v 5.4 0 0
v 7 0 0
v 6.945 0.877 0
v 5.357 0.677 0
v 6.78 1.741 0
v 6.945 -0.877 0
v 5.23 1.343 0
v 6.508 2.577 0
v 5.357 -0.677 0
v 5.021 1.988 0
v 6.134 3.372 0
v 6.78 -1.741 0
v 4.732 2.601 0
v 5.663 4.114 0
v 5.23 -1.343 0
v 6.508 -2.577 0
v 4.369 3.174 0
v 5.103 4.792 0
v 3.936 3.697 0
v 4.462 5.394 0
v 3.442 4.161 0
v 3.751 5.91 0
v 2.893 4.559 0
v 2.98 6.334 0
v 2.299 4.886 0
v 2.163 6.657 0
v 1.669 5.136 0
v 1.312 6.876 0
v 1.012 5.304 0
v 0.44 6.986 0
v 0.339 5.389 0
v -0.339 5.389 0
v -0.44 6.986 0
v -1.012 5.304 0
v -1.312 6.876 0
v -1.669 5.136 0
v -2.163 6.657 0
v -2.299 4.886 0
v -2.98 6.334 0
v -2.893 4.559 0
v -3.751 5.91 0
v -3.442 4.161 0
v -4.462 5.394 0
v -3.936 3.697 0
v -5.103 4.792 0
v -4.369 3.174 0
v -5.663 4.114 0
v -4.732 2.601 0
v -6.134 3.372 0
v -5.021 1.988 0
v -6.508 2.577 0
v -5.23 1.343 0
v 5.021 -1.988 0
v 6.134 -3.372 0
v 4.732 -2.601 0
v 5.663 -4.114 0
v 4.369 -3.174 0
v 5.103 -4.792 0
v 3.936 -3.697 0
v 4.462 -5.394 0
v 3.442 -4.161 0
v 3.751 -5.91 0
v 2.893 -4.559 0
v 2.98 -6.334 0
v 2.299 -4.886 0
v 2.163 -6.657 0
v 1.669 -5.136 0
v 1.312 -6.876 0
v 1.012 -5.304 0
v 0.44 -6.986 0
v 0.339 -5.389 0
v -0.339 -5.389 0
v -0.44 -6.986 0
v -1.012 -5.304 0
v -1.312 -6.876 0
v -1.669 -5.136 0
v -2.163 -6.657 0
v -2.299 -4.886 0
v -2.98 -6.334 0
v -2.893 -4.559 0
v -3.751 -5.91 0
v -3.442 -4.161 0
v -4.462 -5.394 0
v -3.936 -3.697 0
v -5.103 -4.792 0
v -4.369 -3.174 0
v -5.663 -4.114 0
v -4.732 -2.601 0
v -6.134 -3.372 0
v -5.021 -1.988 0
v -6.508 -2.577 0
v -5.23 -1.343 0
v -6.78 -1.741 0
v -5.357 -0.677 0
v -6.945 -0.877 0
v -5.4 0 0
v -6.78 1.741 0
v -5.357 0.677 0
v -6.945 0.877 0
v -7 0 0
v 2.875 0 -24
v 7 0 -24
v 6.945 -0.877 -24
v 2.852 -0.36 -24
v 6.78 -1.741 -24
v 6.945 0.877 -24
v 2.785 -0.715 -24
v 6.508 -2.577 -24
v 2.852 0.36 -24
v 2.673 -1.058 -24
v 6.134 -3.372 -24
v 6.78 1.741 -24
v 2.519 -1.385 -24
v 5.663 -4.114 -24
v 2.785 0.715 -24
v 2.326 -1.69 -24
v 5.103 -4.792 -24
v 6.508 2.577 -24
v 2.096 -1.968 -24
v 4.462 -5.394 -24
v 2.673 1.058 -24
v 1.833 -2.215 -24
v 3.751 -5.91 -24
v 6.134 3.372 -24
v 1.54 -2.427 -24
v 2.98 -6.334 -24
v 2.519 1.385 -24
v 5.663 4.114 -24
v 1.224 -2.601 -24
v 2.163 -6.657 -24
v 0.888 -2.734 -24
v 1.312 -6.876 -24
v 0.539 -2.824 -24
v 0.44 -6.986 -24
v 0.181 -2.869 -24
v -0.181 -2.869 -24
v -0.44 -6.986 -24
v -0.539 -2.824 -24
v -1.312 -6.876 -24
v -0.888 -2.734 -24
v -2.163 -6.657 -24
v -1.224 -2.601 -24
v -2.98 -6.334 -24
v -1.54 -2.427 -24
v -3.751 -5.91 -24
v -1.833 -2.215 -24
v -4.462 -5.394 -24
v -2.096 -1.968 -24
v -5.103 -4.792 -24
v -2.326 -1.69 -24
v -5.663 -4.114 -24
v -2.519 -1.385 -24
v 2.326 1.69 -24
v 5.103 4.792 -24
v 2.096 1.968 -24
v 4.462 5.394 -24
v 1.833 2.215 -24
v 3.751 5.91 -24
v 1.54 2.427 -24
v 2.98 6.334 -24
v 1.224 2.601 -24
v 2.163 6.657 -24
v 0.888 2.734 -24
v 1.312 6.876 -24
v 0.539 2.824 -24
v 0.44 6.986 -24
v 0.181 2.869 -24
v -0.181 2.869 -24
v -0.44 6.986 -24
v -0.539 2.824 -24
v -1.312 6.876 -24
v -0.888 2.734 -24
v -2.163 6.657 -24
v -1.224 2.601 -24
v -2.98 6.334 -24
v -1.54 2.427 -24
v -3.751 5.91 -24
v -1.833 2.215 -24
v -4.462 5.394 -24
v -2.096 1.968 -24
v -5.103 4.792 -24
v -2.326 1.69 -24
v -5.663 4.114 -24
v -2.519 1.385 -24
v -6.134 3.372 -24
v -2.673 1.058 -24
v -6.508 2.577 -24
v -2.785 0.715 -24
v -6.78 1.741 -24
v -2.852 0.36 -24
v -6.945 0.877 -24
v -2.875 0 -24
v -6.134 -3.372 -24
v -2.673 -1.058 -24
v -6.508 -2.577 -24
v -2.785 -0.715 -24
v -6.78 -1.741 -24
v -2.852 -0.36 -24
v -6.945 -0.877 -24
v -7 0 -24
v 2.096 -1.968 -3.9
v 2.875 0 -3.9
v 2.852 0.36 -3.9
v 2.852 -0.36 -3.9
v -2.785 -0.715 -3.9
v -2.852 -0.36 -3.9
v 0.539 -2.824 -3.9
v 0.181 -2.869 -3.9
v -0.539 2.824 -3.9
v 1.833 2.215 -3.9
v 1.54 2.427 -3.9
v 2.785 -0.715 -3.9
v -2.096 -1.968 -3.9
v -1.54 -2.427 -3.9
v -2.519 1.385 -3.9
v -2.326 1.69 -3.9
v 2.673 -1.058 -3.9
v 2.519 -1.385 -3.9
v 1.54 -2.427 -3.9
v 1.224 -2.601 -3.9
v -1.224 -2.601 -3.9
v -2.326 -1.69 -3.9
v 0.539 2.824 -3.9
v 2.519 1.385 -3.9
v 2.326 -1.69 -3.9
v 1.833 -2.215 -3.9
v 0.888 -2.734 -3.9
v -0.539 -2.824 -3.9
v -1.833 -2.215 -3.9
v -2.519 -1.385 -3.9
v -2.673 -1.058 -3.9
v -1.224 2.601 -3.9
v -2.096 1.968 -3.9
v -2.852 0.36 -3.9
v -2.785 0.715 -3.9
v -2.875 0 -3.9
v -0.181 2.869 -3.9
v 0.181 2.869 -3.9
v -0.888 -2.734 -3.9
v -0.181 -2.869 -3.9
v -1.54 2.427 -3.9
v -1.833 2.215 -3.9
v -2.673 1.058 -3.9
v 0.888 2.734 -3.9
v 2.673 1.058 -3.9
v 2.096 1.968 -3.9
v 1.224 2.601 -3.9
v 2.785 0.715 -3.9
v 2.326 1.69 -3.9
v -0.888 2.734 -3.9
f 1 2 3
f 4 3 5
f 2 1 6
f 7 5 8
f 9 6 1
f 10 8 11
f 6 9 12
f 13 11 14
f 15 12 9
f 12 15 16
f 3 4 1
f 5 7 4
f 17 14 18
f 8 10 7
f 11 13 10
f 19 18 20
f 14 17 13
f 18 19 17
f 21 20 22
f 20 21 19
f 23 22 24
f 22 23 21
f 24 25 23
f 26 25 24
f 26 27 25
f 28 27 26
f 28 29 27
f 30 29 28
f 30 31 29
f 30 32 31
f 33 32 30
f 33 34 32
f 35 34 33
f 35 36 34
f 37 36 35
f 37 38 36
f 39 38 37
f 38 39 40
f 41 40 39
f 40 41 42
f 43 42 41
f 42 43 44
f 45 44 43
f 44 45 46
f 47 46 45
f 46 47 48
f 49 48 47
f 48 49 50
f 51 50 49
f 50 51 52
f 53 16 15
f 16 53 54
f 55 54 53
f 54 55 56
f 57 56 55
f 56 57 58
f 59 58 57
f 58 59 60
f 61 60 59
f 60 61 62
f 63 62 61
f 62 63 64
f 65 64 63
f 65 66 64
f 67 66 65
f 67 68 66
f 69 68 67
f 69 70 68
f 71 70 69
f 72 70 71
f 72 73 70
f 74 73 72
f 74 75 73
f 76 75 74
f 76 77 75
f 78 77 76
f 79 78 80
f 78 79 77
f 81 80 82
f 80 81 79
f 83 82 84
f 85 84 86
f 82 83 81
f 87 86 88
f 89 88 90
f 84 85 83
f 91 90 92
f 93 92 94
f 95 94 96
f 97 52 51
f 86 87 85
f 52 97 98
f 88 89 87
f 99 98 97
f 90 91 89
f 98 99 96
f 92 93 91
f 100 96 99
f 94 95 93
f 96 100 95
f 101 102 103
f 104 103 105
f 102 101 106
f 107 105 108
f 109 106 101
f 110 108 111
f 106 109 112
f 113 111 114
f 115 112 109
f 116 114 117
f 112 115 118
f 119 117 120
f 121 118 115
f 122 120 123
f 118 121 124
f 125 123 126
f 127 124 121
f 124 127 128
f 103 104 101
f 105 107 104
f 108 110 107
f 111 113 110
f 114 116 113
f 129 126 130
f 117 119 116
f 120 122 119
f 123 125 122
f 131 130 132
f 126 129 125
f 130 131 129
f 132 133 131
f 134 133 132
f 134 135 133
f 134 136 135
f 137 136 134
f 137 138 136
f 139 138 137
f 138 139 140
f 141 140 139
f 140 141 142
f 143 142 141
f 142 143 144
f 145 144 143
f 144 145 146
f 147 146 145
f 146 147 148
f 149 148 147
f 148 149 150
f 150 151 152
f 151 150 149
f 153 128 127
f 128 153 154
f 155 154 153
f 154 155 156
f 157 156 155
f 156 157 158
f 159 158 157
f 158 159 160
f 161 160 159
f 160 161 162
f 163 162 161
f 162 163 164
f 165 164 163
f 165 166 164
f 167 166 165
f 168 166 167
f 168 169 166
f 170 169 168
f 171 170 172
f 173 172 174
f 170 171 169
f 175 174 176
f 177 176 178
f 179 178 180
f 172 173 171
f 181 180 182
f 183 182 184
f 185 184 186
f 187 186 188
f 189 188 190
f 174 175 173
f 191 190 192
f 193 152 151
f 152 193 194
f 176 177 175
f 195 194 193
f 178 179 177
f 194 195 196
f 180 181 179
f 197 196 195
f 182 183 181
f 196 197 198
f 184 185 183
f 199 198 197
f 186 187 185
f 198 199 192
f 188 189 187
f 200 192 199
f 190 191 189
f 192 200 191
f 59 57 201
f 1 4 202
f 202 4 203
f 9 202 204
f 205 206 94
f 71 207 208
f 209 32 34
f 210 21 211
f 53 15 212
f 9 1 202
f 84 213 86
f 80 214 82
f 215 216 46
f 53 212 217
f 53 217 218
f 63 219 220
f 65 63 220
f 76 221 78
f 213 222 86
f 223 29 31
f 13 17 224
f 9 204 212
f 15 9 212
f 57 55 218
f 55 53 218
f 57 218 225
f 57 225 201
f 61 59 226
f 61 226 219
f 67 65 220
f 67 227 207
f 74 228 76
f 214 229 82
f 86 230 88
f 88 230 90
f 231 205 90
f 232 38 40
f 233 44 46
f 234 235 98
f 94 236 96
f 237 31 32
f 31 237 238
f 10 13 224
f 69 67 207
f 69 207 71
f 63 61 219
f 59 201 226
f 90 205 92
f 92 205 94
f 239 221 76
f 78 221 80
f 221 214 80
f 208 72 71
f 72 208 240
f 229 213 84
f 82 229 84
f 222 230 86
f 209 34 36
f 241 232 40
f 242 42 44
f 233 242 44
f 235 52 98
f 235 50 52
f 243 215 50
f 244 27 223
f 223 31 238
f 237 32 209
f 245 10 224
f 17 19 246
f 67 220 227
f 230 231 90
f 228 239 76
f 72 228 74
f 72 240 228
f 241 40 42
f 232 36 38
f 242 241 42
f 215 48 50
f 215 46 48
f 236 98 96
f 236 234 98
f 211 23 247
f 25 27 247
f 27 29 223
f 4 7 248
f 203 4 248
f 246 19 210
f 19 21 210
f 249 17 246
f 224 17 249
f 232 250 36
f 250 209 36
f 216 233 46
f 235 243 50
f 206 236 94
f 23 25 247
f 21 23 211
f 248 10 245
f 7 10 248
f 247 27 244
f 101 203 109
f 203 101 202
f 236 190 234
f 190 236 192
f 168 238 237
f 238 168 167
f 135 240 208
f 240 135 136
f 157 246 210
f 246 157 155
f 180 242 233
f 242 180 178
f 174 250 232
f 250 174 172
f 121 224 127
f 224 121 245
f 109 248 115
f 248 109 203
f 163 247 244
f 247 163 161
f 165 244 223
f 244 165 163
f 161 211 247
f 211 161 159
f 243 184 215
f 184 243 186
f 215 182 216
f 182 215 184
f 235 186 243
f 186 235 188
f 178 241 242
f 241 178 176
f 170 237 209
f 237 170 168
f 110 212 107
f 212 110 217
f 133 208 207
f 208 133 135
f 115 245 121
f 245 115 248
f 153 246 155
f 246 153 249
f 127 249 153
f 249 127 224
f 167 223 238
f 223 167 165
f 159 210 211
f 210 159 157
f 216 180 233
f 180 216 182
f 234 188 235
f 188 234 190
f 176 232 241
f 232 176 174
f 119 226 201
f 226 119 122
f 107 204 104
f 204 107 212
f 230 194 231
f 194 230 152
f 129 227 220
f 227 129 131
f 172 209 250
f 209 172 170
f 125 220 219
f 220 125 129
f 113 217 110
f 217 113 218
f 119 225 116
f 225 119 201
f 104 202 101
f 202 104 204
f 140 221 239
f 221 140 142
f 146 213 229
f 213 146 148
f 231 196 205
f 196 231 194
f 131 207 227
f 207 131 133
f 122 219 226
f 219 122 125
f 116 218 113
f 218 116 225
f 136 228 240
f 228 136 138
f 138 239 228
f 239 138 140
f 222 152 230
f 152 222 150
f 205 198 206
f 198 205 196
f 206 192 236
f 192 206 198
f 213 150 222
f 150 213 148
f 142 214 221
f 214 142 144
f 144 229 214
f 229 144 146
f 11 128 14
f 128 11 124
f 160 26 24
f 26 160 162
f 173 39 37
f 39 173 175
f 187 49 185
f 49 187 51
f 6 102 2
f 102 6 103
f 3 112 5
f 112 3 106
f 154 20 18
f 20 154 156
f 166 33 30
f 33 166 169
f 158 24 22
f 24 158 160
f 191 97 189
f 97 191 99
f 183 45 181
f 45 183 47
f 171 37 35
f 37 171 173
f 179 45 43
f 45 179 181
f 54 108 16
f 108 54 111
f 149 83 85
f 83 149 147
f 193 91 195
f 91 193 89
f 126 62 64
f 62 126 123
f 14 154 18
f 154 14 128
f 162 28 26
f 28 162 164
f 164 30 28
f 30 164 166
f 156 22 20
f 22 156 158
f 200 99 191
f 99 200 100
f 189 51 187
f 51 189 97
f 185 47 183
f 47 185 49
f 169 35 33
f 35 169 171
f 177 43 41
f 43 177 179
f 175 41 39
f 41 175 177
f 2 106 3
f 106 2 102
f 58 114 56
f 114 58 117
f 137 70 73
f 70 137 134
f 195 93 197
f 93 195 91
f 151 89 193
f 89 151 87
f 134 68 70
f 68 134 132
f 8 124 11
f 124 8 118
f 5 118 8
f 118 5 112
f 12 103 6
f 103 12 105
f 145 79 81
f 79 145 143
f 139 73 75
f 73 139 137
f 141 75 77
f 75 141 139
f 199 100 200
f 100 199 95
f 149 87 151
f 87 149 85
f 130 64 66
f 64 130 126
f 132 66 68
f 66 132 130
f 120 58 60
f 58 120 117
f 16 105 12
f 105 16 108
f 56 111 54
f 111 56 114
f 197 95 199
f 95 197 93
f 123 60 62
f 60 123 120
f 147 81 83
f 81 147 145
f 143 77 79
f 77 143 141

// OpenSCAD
$fn = 50;


difference() {
	union() {
		translate(v = [0, 0, -24.0000000000]) {
			cylinder(h = 24, r = 7.0000000000);
		}
		cylinder(h = 0, r = 16.0000000000);
	}
	union() {
		translate(v = [0, 0, 0]) {
			rotate(a = [0, 0, 0]) {
				difference() {
					union() {
						#translate(v = [0, 0, -24.0000000000]) {
							cylinder(h = 24, r = 2.6000000000);
						}
						#translate(v = [0, 0, -3.9000000000]) {
							cylinder(h = 3.9000000000, r = 7.0000000000, r1 = 2.8750000000, r2 = 5.4000000000);
						}
						#translate(v = [0, 0, -24.0000000000]) {
							cylinder(h = 24, r = 2.8750000000);
						}
						#translate(v = [0, 0, -24.0000000000]) {
							cylinder(h = 24, r = 2.6000000000);
						}
					}
					union();
				}
			}
		}
	}
}
